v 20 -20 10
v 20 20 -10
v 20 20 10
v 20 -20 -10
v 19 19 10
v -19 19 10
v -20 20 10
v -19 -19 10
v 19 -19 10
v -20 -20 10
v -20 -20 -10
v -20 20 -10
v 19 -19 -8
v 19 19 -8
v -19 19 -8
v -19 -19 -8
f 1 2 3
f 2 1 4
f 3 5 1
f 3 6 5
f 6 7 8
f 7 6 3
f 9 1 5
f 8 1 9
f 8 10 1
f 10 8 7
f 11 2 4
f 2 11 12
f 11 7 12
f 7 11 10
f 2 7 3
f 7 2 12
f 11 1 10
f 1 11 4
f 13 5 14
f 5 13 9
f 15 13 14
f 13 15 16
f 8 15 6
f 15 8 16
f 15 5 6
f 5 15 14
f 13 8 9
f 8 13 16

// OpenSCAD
// ADDED BY:nbr0wn
// ADD DATE:2023-01-27
/* [Params] */

// Length
length = 40;

// Width
width = 40;

// Height
height = 20;

// Thickness
thick=2;

module __END__ () {}

difference() {
cube([length,width,height], center=true);
translate([0,0,thick]) cube([length-thick, width-thick, height], center=true);
}
